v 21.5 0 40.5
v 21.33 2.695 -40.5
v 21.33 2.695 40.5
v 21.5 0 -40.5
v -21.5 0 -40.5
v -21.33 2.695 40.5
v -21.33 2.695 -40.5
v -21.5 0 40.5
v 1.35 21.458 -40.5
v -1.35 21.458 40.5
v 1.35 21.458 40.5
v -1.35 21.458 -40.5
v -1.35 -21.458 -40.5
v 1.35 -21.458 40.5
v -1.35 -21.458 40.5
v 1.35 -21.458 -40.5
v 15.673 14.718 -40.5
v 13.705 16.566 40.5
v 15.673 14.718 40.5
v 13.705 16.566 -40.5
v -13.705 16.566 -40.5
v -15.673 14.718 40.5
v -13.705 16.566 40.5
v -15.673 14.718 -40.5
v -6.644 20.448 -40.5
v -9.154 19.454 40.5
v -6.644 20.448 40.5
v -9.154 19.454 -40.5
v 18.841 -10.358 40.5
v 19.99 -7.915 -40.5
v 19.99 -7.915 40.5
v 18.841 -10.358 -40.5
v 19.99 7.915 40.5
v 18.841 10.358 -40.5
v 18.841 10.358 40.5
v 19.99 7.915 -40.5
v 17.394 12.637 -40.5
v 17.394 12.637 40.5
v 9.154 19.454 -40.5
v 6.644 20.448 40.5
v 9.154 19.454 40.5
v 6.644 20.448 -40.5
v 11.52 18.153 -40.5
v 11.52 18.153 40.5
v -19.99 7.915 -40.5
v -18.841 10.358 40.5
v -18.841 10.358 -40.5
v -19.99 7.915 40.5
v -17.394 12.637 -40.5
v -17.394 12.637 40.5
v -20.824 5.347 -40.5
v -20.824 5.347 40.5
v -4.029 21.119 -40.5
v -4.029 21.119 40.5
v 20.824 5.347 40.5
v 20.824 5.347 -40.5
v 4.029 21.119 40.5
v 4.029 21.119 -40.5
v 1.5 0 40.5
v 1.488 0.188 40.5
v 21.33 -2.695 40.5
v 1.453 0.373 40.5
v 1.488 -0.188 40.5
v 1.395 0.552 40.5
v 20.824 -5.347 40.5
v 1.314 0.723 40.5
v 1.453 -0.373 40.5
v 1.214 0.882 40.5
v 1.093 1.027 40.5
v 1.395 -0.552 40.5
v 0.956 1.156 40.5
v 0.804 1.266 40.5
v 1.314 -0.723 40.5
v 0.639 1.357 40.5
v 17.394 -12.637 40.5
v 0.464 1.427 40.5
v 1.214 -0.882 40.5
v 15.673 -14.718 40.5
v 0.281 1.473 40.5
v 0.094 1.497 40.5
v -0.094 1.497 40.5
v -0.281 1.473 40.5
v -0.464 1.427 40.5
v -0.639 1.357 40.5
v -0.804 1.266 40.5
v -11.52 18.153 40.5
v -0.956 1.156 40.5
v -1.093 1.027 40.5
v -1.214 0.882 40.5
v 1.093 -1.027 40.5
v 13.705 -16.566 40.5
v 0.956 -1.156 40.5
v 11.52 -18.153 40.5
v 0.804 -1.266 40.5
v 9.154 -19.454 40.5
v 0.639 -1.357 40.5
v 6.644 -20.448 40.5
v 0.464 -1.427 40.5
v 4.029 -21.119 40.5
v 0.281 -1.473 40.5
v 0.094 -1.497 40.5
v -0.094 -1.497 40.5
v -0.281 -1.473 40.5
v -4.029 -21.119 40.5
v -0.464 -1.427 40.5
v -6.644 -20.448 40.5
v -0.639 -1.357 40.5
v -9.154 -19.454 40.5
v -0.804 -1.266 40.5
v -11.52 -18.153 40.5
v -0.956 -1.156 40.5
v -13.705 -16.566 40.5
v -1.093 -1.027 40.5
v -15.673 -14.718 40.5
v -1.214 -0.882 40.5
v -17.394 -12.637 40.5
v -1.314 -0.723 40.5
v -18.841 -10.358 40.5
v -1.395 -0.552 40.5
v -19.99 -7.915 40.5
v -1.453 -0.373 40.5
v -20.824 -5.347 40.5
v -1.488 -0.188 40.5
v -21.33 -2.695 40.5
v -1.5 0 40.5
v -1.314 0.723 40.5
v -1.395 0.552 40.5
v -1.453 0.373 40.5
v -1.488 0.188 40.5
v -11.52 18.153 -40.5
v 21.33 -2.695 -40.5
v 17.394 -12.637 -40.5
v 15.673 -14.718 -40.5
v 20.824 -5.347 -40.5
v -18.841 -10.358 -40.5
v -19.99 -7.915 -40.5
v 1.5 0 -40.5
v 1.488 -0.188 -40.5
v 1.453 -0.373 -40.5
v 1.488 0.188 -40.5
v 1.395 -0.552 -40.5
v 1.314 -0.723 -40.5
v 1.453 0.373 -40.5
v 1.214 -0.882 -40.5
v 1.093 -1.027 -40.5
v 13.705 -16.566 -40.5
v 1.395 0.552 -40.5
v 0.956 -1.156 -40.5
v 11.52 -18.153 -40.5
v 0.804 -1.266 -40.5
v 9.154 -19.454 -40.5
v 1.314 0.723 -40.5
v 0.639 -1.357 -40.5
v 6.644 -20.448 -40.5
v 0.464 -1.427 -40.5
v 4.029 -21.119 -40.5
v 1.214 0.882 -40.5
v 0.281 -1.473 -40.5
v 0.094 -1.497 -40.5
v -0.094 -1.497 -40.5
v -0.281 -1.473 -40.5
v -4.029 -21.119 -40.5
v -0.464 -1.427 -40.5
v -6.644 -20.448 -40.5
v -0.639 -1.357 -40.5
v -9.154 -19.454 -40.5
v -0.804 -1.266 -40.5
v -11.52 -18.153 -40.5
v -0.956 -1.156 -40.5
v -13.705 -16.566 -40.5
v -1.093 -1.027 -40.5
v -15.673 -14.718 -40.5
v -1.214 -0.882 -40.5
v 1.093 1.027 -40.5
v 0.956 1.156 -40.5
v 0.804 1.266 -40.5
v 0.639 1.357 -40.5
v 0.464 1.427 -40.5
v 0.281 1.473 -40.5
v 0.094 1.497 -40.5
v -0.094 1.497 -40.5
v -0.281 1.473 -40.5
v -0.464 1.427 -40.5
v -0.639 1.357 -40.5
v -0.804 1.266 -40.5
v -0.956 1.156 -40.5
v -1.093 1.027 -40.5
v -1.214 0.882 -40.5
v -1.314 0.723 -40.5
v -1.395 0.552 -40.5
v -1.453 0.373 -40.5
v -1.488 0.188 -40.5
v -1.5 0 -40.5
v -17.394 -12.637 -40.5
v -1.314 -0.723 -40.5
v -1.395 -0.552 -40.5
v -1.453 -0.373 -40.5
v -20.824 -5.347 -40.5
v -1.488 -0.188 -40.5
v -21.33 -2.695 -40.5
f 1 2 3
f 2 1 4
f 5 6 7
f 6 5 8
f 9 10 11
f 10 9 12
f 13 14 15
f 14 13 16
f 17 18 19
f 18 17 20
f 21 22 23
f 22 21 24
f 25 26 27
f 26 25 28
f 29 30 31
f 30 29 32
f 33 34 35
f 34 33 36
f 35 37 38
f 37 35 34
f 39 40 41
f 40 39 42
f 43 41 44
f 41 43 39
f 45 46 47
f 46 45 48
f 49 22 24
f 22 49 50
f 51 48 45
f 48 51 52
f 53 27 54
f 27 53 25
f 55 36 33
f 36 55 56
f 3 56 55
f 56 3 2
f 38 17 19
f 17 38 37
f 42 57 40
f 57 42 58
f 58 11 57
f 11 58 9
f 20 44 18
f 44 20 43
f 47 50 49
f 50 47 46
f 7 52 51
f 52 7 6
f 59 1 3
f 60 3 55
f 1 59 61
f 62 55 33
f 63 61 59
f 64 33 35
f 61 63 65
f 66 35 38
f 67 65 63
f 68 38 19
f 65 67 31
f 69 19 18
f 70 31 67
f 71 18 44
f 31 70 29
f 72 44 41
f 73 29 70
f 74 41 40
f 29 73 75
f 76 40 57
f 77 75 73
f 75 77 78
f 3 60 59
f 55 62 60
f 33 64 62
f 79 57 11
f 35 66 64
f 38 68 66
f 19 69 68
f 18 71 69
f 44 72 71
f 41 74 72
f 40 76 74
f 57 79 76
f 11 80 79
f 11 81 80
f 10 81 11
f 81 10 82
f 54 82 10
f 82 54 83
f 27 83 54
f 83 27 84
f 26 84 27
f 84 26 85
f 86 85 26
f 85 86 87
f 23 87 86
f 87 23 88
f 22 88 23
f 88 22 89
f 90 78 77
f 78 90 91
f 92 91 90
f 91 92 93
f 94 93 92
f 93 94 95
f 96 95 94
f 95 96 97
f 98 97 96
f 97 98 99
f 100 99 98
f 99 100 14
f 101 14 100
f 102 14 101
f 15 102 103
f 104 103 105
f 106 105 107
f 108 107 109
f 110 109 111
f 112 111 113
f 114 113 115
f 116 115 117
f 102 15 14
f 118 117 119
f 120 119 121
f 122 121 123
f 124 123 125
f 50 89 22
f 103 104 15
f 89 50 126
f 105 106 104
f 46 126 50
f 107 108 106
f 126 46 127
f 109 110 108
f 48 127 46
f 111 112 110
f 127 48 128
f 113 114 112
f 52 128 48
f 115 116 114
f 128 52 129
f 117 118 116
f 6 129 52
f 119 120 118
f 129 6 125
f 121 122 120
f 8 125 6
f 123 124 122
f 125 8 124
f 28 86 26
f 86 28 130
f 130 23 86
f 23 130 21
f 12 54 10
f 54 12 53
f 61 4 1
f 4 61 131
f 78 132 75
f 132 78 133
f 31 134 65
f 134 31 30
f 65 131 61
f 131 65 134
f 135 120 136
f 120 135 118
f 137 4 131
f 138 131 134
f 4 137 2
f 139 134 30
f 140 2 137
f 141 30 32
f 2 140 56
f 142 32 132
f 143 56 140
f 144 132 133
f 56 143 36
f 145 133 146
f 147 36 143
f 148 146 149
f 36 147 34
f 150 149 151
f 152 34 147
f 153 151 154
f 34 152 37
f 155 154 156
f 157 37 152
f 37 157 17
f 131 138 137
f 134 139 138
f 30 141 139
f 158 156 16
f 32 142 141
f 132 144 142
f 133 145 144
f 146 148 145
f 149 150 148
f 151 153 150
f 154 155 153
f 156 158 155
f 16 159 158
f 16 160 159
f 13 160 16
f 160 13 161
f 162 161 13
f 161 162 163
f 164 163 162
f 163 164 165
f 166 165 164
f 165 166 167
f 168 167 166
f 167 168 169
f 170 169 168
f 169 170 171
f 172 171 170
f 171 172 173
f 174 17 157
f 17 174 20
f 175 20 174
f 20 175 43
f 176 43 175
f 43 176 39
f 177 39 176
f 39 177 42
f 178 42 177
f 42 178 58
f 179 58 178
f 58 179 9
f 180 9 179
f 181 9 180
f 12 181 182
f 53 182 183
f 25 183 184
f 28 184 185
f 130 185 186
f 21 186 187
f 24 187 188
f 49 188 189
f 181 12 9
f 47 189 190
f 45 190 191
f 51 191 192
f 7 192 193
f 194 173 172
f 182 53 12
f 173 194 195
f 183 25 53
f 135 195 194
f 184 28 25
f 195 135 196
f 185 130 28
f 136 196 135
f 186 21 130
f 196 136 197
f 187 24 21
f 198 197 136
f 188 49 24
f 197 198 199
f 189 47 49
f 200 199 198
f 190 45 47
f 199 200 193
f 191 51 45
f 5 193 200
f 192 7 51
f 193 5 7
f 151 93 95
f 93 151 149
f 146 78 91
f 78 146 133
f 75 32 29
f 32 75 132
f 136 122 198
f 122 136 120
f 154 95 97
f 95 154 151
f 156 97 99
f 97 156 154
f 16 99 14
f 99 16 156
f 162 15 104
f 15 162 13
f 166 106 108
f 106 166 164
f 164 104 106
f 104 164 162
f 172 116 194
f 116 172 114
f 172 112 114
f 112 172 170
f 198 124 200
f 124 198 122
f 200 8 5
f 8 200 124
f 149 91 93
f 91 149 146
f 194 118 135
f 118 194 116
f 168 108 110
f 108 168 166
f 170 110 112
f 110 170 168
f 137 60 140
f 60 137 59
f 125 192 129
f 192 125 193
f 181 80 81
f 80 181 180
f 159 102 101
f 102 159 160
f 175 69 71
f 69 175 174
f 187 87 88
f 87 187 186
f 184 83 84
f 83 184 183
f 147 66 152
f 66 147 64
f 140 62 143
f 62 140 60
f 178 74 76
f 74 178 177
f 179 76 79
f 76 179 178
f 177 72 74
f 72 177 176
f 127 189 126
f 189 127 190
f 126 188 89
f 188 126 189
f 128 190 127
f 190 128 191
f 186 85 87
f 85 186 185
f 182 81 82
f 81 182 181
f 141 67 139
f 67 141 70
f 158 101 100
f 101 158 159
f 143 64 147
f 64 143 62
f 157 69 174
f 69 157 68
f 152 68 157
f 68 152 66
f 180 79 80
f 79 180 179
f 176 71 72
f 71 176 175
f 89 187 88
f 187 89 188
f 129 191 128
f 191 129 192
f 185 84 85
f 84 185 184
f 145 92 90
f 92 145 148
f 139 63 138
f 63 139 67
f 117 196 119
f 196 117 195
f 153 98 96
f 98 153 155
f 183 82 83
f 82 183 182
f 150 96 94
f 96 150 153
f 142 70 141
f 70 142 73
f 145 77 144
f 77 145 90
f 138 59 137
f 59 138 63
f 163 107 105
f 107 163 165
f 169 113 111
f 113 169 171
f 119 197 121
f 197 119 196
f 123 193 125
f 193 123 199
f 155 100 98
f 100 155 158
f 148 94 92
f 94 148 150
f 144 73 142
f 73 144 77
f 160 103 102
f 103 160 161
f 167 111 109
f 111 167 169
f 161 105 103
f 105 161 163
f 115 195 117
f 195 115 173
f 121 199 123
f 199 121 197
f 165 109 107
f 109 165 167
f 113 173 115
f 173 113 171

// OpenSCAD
$fn = 50;


difference() {
	union() {
		translate(v = [0, 0, -40.5000000000]) {
			cylinder(h = 81, r = 21.5000000000);
		}
	}
	union() {
		translate(v = [0, 0, -100.0000000000]) {
			cylinder(h = 200, r = 1.5000000000);
		}
	}
}
